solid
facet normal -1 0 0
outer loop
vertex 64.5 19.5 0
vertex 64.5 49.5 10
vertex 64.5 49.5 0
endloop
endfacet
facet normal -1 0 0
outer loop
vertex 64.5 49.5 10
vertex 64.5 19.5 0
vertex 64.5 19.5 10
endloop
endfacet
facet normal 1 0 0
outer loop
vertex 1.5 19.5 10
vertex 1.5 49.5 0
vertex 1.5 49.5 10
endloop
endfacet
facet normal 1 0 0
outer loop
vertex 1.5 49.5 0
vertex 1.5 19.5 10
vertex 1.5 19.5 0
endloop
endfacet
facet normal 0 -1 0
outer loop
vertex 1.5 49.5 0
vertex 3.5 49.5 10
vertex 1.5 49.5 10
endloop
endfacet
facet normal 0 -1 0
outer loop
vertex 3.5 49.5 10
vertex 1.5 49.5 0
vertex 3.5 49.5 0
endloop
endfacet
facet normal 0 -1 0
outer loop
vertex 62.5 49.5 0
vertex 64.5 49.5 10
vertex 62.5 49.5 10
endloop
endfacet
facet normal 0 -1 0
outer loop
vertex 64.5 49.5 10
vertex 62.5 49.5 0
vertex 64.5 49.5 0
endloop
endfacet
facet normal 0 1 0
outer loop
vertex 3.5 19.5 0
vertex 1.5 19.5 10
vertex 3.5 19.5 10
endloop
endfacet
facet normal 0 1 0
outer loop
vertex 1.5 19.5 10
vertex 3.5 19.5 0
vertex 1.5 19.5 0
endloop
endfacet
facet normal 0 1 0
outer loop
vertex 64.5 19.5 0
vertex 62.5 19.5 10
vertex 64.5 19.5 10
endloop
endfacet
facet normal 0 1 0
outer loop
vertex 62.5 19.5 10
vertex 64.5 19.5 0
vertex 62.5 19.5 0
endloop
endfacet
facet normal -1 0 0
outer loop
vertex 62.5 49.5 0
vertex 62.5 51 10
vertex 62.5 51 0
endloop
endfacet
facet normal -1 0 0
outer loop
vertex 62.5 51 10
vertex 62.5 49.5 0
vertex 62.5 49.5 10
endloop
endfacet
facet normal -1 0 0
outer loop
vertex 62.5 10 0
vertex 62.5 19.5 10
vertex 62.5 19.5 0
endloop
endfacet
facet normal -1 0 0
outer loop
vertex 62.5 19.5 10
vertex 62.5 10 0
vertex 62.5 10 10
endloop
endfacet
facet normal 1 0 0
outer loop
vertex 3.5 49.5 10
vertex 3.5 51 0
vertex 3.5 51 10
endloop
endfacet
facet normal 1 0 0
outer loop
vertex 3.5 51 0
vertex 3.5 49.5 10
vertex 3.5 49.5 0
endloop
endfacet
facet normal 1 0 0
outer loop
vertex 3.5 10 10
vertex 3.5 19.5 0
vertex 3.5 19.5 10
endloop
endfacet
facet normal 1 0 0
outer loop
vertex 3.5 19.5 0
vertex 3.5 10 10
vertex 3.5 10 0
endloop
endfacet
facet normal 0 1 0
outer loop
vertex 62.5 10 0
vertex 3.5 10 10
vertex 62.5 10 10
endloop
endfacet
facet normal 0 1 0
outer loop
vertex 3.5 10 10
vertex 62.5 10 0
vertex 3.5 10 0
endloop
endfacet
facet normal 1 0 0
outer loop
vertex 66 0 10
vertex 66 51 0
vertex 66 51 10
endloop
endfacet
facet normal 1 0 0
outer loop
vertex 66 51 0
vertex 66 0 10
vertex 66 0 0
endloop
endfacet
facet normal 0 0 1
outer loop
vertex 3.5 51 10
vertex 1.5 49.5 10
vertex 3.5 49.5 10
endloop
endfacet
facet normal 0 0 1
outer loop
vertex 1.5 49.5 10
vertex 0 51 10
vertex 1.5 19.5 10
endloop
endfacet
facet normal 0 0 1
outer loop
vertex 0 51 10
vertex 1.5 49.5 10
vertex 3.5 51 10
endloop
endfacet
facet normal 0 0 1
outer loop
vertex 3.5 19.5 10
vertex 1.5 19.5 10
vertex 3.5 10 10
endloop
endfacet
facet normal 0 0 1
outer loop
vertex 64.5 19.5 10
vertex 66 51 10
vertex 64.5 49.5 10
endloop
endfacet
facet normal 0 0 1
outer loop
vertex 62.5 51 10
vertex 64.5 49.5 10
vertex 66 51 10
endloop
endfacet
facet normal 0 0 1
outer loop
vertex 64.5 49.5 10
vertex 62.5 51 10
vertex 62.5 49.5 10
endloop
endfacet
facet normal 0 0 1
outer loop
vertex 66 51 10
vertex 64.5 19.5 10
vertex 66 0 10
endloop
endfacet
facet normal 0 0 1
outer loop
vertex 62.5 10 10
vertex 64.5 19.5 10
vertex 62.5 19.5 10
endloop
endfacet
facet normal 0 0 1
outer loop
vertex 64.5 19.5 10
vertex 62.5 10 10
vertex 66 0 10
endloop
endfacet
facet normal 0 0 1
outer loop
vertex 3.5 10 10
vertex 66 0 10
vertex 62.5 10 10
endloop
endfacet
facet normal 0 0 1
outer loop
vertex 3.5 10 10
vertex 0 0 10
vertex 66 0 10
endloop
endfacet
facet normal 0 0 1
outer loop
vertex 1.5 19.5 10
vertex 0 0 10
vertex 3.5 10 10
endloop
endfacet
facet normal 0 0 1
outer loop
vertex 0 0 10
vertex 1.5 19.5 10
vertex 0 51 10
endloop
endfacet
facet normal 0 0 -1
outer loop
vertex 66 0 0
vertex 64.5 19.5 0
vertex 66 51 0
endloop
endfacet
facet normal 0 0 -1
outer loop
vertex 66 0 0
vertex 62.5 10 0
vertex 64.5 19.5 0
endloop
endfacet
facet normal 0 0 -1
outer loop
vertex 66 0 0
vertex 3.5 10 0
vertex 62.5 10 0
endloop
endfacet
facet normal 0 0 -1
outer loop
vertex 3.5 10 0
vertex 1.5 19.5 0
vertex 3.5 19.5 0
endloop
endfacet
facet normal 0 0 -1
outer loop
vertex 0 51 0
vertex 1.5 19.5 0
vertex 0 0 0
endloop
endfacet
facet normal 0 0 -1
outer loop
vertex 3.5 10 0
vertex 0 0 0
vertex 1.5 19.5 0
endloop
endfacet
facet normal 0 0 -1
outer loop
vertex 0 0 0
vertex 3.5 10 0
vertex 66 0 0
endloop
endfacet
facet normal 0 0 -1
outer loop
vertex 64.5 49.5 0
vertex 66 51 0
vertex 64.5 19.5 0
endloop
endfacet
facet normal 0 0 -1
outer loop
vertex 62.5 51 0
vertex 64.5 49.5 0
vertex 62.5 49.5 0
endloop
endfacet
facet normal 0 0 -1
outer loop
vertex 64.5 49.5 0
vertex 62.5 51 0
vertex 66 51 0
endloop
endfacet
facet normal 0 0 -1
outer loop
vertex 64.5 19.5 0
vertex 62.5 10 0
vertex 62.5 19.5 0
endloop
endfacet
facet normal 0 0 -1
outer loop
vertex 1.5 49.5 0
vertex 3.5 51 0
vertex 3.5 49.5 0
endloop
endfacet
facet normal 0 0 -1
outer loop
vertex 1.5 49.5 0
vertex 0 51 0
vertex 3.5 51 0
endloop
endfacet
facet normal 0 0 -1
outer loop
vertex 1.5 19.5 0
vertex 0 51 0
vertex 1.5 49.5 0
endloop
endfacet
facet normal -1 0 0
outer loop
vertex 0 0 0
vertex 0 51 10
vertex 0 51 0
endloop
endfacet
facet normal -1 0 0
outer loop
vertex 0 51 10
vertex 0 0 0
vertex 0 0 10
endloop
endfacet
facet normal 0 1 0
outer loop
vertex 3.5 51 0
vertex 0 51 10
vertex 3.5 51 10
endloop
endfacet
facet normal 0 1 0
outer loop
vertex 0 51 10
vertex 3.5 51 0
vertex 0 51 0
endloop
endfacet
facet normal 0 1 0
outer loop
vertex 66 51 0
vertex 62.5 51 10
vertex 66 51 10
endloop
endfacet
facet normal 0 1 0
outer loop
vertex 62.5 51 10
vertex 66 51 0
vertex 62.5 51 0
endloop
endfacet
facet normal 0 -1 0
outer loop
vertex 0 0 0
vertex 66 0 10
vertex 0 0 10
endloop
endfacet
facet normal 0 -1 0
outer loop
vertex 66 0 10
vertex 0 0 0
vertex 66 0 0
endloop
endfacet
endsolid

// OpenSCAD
width=62; // x
depth=29; // y
height=10; // z
holeWidth=20;

extra=0.5;
extraHole=10;
f=2;
g=2;
h=2;
i=2;

difference(){
    // A
    cube([width+(2*g),depth+holeWidth+f,height]);
    // B + C
    union(){
        translate([g-extra,holeWidth-extra,-extraHole/2]){
            //B
            cube([width+(2*extra),depth+(2*extra),height+extraHole]);
        }
        translate([g+h-extra,holeWidth/2,-extraHole/2]){
            //C
            cube([width-(2*i)+(2*extra),depth+(2*extra)+holeWidth/2+extraHole,height+extraHole]);
        }
    }
}
